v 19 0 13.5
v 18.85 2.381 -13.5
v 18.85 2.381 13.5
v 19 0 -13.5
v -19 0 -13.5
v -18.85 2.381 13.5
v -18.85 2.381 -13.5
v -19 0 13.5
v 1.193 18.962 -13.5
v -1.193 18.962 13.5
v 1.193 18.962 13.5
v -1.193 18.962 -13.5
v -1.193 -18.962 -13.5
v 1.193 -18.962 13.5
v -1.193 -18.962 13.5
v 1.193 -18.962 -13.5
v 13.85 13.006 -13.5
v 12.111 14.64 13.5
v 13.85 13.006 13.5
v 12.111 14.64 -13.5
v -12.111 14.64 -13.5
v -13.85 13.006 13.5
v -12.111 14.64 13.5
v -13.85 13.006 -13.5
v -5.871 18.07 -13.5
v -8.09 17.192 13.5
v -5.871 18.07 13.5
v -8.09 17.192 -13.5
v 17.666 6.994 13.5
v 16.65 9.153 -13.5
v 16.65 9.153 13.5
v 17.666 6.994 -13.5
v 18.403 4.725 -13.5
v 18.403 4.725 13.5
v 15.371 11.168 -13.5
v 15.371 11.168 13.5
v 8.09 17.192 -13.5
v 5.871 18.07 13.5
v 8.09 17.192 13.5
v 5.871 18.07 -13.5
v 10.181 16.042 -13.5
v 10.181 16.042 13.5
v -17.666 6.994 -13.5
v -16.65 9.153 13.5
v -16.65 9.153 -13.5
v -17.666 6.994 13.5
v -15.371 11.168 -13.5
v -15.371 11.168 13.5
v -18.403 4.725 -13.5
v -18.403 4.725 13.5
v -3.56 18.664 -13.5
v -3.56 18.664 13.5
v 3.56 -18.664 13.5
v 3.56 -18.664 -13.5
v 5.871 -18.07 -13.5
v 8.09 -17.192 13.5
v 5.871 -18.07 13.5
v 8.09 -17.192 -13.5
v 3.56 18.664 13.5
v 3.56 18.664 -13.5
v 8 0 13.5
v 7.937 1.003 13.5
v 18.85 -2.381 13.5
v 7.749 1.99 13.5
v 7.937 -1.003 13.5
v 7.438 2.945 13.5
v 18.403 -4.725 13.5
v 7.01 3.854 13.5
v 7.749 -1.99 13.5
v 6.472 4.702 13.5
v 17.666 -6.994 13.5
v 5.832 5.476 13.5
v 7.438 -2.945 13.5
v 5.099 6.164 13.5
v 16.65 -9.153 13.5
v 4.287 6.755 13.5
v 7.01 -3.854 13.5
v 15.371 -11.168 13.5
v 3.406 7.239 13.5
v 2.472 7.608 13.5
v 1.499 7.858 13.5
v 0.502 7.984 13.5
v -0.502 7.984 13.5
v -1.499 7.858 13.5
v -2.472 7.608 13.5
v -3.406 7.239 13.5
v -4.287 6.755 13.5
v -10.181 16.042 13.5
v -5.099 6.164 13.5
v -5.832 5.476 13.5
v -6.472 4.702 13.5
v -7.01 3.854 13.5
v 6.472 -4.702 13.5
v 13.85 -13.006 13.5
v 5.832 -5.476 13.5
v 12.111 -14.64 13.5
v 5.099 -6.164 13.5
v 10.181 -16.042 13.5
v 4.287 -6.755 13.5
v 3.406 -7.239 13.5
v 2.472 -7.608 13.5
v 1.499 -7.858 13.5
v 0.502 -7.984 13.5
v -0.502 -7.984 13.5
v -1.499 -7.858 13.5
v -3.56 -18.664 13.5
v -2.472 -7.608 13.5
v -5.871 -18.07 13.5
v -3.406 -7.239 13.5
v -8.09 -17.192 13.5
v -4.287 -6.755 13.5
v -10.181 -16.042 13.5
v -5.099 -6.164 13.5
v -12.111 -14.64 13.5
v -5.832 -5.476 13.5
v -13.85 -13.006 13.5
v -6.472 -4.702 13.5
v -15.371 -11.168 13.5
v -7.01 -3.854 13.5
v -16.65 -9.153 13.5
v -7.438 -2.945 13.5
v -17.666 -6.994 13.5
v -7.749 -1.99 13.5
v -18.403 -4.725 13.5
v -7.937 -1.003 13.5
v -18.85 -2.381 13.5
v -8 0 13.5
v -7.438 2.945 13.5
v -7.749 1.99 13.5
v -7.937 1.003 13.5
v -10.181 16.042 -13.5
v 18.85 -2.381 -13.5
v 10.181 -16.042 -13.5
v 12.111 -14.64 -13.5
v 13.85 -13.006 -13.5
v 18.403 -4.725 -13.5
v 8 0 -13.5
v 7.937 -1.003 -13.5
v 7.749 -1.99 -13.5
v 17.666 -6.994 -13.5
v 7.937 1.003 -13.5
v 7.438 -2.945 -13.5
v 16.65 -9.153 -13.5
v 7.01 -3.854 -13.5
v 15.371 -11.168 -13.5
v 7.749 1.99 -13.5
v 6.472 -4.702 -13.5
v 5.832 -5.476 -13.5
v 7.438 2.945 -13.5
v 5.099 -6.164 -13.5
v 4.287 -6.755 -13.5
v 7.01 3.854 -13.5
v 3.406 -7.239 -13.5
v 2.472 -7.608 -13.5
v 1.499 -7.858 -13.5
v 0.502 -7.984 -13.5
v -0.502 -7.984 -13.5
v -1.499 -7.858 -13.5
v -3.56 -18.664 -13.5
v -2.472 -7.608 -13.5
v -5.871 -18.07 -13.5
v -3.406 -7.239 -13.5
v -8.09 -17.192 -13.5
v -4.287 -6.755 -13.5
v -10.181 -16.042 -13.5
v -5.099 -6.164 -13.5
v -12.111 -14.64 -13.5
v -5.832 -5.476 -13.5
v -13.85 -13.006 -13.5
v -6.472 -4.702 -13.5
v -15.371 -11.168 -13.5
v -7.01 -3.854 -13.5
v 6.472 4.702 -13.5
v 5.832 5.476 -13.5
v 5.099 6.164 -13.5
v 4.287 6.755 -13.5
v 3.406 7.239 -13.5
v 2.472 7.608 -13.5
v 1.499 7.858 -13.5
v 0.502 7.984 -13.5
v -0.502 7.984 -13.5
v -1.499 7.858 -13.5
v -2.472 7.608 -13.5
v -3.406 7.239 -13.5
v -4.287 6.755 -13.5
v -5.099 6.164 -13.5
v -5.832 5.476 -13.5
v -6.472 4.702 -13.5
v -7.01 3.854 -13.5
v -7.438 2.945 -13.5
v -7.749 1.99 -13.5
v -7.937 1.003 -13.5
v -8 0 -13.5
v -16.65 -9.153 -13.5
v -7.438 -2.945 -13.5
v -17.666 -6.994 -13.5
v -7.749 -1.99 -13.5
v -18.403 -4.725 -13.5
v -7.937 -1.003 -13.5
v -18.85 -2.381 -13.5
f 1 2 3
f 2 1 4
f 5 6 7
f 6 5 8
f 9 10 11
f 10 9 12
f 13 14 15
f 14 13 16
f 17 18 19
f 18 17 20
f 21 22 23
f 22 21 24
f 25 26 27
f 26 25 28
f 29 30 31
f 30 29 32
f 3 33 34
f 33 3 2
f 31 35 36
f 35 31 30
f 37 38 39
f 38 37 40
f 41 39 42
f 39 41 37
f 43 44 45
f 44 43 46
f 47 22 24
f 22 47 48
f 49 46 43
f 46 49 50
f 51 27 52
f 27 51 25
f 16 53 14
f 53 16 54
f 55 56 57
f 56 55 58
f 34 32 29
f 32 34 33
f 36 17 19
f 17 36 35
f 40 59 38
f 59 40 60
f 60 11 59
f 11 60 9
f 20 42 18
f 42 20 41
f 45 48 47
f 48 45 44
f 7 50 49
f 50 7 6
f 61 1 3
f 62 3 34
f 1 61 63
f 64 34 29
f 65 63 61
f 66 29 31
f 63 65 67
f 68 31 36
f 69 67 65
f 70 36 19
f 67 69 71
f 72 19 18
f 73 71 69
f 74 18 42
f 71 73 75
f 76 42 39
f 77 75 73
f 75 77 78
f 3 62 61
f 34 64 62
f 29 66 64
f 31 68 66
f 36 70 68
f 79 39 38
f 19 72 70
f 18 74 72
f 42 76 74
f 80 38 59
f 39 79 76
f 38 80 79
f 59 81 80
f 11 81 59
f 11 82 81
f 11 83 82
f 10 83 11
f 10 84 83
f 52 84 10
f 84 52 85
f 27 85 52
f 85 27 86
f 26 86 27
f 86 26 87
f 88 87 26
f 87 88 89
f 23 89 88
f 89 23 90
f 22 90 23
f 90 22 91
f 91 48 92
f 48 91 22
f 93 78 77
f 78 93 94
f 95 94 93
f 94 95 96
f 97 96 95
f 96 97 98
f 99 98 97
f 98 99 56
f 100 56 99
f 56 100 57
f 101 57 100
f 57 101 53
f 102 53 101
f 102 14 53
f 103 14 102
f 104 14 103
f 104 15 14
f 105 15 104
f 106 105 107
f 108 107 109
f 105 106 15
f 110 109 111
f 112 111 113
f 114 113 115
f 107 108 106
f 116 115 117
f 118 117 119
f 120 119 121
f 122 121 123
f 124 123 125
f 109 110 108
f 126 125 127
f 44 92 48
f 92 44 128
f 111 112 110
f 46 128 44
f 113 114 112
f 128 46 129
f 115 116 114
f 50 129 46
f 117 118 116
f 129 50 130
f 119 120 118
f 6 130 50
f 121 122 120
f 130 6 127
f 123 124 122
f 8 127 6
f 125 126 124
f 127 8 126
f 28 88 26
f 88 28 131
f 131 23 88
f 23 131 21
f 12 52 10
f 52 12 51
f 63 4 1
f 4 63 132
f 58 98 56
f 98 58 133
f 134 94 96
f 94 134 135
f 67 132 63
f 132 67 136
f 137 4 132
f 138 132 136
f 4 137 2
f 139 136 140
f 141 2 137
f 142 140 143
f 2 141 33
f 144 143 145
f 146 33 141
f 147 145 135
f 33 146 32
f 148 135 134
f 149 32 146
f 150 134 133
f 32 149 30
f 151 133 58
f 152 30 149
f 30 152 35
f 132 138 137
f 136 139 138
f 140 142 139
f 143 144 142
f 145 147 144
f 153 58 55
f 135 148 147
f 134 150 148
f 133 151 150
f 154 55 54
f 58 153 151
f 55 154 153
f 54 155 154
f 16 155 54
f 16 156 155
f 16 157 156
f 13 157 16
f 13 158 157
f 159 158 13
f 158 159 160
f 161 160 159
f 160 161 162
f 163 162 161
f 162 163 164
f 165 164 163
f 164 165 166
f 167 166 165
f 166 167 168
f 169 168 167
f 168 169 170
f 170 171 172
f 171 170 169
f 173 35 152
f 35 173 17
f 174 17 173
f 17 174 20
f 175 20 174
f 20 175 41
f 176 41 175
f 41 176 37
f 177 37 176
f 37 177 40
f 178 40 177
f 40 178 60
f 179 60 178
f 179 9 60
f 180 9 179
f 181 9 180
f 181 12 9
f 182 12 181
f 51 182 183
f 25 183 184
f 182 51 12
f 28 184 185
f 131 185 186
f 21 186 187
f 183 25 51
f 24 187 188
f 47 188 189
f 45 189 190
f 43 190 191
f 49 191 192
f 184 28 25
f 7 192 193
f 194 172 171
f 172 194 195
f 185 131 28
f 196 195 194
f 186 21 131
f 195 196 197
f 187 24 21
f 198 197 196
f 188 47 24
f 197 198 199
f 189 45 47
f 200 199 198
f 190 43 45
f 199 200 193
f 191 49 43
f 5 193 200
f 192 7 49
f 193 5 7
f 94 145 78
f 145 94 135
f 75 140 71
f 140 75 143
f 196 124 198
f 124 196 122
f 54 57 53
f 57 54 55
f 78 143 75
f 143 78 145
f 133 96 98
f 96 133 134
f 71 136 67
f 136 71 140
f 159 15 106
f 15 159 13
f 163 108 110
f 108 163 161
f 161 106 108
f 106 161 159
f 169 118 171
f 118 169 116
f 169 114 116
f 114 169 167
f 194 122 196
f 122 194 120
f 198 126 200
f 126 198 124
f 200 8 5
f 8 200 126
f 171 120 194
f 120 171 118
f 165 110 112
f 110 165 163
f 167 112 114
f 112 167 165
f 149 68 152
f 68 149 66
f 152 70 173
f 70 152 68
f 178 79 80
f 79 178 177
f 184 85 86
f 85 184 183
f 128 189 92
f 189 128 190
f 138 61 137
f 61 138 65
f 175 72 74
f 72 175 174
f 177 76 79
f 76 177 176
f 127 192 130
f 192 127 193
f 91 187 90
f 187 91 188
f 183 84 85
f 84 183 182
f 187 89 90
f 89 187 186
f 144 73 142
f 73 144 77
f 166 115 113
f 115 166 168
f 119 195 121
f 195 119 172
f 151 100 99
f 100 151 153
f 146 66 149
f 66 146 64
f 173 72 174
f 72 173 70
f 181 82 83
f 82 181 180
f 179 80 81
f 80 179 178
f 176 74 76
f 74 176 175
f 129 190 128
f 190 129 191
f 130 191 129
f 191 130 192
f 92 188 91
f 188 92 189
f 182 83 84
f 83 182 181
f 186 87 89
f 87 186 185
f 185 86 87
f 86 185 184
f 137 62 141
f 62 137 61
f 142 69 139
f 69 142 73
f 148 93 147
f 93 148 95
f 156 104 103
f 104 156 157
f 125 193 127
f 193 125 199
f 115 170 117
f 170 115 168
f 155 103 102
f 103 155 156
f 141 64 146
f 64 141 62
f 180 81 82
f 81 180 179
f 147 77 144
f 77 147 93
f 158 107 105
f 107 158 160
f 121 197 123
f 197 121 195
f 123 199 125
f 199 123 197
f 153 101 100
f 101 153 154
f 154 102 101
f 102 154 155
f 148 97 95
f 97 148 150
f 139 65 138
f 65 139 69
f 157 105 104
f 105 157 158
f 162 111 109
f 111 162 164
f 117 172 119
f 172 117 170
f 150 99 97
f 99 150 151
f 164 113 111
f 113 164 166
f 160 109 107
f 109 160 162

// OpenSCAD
$fn = 50;


difference() {
	union() {
		translate(v = [0, 0, -13.5000000000]) {
			cylinder(h = 27, r = 19.0000000000);
		}
	}
	union() {
		translate(v = [0, 0, -100.0000000000]) {
			cylinder(h = 200, r = 8);
		}
	}
}
